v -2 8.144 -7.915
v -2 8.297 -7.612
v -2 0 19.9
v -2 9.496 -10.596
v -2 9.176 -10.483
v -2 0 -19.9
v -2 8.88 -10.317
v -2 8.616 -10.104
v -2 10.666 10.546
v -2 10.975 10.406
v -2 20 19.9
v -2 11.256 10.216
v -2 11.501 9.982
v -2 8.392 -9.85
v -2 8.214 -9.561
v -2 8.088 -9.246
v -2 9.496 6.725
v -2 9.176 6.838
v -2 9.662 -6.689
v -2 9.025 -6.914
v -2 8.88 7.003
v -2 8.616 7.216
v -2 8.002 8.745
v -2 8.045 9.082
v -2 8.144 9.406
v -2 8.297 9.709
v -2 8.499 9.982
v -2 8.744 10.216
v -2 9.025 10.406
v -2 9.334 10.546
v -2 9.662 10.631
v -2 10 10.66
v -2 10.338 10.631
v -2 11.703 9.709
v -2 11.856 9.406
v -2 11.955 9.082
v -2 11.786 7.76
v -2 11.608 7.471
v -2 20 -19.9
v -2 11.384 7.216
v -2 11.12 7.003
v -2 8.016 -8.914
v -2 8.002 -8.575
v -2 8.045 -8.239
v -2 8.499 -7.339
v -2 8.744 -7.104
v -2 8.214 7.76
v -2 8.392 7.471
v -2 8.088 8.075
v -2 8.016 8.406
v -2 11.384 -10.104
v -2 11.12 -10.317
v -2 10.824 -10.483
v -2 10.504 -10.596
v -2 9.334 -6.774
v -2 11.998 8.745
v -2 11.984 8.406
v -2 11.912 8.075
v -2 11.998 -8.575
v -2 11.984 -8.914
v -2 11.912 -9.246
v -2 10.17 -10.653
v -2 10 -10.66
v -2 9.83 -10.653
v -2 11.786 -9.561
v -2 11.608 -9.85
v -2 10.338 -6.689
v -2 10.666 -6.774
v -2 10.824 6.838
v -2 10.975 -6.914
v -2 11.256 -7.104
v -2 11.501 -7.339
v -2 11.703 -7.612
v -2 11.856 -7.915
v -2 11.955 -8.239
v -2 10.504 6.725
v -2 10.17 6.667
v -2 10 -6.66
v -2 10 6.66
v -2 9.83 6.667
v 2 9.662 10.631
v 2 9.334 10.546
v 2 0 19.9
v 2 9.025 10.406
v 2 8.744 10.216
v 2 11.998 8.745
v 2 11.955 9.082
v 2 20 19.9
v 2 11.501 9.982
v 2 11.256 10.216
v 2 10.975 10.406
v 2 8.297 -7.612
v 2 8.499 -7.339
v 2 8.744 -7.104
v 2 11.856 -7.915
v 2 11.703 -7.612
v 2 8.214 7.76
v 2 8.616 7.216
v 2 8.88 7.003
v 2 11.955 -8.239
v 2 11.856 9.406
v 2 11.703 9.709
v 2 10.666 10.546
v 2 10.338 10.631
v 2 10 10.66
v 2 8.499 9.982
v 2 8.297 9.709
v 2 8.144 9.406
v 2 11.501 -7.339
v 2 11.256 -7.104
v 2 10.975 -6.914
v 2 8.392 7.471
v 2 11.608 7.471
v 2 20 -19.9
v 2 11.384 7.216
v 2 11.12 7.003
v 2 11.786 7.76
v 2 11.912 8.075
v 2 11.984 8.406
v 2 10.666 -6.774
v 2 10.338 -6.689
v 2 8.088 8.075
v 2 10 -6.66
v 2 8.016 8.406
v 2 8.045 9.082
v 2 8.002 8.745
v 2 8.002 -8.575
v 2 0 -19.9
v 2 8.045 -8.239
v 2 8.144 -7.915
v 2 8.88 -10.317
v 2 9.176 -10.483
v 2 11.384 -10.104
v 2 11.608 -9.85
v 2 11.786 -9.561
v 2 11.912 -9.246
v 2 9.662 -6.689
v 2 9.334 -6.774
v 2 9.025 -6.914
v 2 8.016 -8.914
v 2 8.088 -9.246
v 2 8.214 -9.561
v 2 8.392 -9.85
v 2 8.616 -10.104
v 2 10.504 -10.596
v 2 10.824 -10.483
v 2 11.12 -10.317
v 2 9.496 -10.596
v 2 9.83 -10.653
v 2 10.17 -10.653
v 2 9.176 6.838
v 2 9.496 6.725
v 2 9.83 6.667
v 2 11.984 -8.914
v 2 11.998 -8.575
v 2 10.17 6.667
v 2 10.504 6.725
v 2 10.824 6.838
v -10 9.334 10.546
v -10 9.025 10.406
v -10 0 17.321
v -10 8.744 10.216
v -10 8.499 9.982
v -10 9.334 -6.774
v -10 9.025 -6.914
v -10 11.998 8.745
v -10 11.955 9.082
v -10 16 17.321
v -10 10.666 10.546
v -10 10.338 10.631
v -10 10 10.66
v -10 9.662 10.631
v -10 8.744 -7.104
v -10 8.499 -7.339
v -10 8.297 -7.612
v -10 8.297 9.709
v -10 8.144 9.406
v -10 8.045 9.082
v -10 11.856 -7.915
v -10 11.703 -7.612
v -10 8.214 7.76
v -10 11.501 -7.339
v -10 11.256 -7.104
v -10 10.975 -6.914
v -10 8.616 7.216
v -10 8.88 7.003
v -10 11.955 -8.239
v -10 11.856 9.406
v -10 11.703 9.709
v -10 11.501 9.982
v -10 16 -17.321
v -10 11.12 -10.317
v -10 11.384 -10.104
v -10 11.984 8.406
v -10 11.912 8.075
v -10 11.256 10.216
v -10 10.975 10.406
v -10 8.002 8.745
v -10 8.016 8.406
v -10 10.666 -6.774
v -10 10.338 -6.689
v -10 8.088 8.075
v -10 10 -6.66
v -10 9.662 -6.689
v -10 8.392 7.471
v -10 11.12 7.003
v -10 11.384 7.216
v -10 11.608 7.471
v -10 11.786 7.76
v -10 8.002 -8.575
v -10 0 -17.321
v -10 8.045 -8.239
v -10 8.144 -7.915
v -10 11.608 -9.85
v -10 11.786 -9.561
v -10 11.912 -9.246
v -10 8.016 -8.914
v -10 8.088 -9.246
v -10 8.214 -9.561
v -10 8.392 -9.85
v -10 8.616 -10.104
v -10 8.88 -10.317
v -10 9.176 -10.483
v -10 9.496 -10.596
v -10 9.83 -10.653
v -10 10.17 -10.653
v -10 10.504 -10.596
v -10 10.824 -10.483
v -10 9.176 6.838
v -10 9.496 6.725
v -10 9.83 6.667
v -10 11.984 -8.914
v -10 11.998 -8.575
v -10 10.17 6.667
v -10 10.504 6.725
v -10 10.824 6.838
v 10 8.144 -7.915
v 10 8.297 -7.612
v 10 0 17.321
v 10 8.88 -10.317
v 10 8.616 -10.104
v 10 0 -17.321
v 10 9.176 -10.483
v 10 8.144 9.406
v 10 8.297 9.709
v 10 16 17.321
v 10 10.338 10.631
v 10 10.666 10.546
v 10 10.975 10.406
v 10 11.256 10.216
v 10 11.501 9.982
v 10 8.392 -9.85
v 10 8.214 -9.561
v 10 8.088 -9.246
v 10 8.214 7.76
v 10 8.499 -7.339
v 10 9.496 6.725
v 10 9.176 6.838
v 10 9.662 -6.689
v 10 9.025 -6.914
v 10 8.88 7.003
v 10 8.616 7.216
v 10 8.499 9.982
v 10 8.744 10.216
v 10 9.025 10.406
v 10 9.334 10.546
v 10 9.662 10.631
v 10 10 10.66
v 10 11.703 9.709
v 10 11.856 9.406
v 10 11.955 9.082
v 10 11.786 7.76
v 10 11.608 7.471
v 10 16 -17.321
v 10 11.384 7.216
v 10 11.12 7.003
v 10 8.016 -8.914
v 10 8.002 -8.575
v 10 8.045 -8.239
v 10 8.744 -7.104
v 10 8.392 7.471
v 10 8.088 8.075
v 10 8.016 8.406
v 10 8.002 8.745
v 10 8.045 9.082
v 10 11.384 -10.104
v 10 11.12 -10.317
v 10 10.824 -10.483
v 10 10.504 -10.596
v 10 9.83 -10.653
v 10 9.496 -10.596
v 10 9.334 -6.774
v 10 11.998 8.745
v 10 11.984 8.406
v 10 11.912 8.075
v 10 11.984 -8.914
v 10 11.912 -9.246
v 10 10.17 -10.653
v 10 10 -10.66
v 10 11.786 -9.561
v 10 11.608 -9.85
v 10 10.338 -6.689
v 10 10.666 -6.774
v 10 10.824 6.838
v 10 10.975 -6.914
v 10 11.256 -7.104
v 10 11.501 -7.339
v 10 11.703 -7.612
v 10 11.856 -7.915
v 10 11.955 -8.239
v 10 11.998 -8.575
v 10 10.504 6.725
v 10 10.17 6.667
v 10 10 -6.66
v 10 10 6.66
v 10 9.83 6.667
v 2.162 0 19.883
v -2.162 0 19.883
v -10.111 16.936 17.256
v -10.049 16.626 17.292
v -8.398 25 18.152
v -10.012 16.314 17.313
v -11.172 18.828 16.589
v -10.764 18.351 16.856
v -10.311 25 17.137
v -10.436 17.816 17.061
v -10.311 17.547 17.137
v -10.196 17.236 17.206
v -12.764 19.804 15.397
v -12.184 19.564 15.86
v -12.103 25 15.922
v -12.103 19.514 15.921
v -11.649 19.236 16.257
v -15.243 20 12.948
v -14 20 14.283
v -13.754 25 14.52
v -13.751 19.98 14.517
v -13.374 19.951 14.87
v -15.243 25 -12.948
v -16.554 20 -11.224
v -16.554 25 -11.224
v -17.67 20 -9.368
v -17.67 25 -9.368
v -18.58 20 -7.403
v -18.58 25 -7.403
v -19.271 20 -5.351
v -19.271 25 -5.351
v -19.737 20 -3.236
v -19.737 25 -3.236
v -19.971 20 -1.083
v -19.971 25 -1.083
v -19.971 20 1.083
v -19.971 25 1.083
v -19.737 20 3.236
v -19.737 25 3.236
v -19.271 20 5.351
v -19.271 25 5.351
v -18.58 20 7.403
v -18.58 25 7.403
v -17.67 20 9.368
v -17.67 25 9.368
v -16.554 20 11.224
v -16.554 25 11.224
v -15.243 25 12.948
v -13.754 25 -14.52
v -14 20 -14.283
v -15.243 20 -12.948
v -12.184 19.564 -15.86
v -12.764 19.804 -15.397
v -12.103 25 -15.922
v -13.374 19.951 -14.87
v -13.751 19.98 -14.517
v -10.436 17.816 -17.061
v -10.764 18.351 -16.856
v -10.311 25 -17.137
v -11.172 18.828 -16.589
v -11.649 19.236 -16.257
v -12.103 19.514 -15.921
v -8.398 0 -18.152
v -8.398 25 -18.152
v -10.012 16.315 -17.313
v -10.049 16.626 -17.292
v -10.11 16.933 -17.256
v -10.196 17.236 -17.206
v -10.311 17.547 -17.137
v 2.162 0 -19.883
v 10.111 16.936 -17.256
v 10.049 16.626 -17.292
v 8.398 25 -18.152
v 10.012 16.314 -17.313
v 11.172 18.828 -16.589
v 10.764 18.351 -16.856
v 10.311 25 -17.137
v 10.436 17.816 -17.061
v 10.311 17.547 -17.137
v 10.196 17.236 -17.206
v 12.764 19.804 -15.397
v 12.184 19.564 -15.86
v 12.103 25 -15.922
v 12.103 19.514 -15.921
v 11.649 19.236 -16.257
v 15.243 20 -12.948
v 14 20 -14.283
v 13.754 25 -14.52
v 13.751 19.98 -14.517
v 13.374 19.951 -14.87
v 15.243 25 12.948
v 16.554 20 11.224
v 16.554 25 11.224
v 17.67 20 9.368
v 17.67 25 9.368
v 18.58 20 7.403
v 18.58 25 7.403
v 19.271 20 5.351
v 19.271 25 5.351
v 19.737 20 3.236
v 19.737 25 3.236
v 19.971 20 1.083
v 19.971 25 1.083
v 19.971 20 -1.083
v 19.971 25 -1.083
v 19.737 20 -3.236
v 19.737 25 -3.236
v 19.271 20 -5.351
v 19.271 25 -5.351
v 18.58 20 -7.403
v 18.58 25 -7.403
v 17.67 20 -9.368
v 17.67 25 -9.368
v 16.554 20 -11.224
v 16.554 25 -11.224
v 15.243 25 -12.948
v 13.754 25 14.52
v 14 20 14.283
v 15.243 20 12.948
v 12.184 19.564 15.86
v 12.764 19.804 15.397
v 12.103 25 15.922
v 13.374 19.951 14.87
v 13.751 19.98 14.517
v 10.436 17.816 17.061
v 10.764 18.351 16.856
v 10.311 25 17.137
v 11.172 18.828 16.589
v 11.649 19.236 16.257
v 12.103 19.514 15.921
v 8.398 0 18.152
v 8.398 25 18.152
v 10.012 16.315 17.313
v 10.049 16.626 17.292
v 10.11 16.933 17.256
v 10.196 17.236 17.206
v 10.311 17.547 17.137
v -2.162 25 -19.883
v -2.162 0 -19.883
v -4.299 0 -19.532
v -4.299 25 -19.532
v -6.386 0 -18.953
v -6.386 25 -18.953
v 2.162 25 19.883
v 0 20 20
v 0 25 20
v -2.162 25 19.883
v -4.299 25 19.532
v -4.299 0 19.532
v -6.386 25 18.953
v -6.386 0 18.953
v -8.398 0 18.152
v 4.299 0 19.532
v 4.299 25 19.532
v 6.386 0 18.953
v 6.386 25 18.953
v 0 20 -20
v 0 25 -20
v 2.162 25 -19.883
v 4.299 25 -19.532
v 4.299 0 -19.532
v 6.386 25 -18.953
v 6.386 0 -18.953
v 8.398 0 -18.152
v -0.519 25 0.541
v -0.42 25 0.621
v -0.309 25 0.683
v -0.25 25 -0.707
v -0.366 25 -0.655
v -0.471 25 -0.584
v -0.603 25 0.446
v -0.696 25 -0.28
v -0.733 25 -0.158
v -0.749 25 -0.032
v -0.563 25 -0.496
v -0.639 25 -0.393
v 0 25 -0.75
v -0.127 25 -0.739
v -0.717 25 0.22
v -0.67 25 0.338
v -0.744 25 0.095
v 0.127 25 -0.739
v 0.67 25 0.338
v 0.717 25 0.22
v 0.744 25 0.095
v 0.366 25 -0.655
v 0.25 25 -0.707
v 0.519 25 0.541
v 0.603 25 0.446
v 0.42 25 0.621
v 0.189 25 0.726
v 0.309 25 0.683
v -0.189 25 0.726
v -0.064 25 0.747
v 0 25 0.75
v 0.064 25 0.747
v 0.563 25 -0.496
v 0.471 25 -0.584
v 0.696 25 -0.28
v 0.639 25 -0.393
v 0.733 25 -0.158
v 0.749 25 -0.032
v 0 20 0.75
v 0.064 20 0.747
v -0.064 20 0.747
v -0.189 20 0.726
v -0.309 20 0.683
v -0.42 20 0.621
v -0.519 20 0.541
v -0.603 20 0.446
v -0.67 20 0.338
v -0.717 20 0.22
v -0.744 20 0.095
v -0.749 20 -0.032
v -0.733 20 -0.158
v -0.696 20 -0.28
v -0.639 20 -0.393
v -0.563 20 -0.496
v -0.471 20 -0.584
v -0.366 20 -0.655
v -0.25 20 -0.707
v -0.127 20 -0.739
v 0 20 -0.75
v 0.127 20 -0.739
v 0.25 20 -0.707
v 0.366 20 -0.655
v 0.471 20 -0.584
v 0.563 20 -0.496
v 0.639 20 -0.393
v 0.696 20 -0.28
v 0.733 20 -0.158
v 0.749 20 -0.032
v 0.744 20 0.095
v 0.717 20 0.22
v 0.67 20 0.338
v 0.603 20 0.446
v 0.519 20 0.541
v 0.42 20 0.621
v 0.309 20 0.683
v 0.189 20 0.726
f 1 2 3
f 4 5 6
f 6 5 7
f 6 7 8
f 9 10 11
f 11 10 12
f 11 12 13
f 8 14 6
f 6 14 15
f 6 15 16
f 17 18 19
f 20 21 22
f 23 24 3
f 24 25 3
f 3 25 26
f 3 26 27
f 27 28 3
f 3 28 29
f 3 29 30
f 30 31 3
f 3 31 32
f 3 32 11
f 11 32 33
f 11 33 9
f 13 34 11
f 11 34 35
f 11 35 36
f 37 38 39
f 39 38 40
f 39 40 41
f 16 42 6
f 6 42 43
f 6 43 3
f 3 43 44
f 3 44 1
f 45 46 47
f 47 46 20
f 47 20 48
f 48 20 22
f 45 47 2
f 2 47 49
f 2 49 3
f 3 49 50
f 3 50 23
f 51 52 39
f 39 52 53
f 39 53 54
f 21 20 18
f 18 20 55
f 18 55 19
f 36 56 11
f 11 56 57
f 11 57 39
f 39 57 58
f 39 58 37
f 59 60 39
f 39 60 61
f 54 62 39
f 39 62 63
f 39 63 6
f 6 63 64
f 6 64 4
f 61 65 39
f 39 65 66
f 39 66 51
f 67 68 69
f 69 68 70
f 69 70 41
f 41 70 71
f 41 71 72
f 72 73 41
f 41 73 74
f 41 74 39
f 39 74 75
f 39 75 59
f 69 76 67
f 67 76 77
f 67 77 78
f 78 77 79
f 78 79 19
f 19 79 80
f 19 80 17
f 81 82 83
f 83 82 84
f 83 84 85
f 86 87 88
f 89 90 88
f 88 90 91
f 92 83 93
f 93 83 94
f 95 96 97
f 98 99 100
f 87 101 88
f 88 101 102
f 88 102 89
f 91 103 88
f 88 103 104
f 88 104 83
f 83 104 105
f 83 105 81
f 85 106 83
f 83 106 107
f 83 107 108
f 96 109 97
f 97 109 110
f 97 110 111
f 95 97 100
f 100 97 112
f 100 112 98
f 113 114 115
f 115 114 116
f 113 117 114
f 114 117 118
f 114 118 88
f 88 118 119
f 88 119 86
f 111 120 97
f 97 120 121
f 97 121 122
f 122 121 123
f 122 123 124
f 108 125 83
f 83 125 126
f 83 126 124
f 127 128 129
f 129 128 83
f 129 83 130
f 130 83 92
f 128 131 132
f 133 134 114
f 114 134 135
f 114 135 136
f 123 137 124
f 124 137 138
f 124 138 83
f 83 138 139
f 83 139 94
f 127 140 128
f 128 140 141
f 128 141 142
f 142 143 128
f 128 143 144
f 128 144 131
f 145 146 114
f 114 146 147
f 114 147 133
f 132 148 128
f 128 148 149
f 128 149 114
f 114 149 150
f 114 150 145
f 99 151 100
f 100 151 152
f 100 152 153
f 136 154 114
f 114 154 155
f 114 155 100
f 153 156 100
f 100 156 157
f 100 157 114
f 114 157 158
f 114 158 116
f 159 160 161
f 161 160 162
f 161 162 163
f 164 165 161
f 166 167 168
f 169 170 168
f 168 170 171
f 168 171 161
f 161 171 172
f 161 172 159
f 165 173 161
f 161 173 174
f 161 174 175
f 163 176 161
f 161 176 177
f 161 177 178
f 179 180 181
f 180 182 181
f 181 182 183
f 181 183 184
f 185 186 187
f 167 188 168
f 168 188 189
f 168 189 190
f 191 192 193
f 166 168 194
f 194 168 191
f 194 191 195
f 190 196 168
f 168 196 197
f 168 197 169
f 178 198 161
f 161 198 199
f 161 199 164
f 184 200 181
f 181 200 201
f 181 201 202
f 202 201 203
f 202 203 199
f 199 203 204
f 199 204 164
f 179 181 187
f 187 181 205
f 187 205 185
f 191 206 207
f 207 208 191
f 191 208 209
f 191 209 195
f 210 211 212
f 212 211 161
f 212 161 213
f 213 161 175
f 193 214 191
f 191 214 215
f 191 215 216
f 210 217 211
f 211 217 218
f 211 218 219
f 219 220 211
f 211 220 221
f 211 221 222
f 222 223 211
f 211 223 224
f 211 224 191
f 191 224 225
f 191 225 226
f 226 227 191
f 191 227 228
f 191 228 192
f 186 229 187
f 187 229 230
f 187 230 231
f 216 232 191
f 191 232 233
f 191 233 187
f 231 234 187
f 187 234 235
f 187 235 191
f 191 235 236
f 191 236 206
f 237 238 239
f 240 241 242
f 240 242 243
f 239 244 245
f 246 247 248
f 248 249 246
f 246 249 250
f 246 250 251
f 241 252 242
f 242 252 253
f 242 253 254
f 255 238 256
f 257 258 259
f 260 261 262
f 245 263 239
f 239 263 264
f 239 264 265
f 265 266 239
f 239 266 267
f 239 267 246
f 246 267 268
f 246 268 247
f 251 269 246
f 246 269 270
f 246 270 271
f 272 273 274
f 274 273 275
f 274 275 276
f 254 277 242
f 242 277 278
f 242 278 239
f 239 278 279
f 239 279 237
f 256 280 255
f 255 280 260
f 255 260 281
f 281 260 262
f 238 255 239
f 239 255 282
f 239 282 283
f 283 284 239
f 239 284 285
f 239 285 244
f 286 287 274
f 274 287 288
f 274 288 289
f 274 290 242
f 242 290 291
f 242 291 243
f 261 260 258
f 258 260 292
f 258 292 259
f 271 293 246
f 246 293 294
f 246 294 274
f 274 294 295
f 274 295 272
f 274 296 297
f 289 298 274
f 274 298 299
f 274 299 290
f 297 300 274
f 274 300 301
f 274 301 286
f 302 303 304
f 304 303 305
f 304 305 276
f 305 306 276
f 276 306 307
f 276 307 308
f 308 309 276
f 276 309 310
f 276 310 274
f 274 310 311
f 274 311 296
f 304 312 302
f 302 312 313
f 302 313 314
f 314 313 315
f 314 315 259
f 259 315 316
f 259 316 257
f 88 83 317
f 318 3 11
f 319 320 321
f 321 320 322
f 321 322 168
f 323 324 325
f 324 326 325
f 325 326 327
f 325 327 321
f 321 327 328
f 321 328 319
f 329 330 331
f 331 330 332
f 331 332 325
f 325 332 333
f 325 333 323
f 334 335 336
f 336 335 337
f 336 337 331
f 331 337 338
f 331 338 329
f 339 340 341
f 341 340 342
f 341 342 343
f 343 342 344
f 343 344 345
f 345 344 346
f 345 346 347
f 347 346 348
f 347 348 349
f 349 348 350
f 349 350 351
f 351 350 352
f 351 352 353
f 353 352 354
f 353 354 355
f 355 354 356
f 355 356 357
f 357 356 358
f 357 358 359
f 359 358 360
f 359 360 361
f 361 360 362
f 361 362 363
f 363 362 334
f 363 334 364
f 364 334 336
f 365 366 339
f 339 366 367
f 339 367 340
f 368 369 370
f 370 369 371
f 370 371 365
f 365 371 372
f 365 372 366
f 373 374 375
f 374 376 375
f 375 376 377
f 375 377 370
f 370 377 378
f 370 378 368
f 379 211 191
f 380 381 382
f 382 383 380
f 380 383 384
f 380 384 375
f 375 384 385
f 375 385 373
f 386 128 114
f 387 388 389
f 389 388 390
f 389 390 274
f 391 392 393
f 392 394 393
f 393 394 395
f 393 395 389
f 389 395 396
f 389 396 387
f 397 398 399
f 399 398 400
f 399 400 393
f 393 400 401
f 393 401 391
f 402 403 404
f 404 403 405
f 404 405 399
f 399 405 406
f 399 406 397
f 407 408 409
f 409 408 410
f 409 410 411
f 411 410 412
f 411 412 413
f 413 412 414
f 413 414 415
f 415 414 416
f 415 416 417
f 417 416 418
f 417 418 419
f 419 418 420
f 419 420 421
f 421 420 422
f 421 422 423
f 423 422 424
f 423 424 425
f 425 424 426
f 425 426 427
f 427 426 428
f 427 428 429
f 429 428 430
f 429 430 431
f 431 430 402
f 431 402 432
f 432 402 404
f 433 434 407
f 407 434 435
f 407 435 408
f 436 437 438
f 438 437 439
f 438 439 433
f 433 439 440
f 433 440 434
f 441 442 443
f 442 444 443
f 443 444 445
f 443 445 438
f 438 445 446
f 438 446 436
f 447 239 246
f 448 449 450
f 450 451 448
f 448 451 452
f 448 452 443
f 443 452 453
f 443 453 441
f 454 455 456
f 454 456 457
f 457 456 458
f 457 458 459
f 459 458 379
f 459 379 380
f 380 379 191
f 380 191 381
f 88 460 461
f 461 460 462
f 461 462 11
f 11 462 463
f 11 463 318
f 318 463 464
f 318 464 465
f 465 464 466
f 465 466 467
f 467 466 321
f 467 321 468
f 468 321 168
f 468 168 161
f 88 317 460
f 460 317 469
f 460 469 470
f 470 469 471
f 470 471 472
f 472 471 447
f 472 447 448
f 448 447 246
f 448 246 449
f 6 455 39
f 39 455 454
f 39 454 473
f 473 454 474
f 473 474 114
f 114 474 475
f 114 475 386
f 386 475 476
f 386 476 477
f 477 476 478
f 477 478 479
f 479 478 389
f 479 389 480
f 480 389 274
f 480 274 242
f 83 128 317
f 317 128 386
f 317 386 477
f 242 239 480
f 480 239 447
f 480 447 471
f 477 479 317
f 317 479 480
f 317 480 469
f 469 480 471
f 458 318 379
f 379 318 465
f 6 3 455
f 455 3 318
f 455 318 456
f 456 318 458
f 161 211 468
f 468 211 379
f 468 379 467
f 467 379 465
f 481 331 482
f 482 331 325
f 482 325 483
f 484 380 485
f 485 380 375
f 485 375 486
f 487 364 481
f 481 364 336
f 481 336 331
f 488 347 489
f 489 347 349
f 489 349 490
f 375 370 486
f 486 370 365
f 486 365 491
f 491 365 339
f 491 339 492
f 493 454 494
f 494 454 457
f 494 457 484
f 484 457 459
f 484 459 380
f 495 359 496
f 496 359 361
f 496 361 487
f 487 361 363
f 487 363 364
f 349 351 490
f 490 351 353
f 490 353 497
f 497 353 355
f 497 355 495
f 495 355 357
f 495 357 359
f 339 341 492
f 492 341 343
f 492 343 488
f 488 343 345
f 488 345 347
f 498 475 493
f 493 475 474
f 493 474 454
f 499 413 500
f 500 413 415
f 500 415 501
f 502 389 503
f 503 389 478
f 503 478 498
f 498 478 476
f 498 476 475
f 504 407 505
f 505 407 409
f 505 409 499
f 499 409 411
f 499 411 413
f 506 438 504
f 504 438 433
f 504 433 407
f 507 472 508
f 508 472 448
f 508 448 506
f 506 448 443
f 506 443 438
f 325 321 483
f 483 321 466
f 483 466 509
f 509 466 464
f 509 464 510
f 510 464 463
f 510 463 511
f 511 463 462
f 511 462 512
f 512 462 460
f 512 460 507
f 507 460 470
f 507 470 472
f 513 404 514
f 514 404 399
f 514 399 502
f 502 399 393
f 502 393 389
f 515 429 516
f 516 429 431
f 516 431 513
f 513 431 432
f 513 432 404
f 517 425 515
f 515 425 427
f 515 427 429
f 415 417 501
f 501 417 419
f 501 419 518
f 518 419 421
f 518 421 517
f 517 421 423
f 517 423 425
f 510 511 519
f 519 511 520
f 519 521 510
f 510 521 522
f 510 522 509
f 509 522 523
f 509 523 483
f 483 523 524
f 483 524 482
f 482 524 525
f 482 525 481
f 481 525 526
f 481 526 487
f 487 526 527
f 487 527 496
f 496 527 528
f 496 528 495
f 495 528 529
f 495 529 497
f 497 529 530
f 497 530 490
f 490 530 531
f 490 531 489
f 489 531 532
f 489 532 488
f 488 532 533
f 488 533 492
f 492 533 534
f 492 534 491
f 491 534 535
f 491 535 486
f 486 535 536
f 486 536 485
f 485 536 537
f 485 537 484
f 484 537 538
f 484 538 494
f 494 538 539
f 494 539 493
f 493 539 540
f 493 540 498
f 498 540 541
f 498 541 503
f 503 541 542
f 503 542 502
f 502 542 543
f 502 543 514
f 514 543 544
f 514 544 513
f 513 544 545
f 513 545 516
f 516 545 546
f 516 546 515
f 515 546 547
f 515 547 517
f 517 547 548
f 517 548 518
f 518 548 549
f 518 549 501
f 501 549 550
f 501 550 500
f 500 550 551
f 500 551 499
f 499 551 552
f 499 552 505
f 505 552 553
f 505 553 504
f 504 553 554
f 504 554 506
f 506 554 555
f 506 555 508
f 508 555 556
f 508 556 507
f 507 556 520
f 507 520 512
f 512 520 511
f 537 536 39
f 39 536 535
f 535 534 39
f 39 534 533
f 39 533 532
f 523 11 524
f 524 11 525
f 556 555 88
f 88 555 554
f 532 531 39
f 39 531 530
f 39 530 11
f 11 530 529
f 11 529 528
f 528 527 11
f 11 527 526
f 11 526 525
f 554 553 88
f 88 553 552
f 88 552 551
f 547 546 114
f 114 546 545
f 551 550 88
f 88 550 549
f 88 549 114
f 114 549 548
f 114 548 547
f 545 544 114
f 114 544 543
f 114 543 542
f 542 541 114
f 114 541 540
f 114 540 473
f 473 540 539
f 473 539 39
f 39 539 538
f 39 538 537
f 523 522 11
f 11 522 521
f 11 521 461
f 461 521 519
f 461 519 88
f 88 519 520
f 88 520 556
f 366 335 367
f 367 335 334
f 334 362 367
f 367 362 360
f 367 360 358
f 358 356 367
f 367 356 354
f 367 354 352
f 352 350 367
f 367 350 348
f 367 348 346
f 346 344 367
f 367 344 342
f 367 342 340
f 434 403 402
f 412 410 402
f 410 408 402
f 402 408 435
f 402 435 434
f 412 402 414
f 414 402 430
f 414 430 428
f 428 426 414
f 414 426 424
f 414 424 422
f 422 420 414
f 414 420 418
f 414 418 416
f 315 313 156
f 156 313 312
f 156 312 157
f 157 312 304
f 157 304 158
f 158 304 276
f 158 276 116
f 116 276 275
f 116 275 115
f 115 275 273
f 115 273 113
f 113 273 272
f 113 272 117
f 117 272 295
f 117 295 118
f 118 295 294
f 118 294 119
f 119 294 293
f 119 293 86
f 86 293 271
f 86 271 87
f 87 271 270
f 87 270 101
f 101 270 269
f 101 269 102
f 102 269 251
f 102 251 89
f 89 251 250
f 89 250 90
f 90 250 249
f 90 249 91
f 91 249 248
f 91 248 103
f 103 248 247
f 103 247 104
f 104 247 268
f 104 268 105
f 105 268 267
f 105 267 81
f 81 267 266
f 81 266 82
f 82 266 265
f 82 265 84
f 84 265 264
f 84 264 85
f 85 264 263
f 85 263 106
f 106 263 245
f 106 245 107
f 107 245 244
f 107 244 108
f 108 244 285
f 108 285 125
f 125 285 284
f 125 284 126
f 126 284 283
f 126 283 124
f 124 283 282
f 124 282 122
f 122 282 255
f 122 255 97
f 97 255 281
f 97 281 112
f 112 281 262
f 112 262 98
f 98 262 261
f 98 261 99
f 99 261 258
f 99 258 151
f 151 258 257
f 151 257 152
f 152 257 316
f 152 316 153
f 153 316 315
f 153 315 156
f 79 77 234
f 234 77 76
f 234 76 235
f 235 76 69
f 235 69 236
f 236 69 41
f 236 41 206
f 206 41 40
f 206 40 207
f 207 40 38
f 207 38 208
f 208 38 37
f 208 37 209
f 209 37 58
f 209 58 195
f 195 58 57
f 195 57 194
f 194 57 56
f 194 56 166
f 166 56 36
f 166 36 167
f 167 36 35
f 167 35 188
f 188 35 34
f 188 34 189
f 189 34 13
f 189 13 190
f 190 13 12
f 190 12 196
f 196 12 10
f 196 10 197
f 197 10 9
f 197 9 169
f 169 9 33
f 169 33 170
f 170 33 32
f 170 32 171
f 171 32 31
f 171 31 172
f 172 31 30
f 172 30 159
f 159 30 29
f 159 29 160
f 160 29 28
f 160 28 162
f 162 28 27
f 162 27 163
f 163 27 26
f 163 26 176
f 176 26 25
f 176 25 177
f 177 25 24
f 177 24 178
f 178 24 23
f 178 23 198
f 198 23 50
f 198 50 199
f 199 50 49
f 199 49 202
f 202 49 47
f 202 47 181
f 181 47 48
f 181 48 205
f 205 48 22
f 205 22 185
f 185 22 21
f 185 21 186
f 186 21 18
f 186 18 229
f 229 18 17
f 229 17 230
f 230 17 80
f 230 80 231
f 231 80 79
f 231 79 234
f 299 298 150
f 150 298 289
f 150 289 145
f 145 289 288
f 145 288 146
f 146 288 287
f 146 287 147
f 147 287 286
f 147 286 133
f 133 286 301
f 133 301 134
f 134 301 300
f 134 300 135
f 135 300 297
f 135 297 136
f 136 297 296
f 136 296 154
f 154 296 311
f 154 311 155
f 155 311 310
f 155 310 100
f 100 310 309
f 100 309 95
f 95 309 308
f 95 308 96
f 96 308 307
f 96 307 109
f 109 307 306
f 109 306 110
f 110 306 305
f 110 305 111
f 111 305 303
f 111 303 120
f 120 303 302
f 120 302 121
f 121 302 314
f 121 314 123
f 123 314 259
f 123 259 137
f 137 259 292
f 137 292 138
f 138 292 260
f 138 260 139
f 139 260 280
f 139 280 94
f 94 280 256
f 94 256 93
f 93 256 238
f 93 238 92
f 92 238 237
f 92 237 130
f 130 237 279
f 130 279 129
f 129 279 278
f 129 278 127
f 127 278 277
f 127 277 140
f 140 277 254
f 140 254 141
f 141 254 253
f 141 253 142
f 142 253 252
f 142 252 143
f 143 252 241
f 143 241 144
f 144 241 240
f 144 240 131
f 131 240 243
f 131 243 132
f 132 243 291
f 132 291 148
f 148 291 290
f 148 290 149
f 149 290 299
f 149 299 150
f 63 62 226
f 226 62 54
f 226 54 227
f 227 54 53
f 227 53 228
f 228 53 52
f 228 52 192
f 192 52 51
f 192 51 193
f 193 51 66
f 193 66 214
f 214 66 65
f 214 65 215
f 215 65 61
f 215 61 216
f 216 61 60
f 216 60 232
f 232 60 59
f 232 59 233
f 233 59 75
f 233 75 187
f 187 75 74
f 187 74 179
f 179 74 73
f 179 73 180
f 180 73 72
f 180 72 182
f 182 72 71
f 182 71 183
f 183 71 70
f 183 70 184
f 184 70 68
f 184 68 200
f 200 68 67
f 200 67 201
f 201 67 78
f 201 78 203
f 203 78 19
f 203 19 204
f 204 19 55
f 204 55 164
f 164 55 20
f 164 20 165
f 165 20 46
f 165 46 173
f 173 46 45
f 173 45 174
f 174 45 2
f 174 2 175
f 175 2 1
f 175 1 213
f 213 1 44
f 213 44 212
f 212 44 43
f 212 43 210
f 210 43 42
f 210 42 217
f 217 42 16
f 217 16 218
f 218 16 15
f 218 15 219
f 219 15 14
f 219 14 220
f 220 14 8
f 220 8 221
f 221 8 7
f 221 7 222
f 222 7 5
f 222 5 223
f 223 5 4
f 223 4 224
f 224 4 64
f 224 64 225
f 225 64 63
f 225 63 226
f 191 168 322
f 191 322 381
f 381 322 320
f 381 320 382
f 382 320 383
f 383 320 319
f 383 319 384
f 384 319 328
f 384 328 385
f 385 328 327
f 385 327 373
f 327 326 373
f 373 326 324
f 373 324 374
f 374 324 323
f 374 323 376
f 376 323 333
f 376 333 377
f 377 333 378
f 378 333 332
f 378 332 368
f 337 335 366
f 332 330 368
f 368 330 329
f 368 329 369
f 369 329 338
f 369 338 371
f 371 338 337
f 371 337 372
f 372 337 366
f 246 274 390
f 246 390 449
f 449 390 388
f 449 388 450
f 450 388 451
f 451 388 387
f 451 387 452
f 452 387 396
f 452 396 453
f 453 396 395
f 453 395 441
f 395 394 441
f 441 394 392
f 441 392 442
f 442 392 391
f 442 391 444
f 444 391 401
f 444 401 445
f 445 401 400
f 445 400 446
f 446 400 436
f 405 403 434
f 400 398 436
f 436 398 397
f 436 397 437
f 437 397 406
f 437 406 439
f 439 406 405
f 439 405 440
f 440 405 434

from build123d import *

# Parameters (mm, degrees)
ESBO_O1_R                  = 20
ESBO_O1_R_2                = 0.75
RESSALTO_EXTRUS_O1_DEPTH   = 25
ESBO_O2_W                  = 4
ESBO_O2_H                  = 42.07133093
ESBO_O2_W_2                = 15.138637908
ESBO_O2_H_2                = 40
ESBO_O2_W_3                = 12.263470243
CORTE_EXTRUS_O1_DEPTH      = 20
ESBO_O3_R                  = 2
CORTE_EXTRUS_O2_DEPTH      = 20
CORTE_EXTRUS_O2_DEPTH_BACK = 20
FILETE1_R                  = 4


with BuildPart() as part:
    # Esboço1 → Ressalto-extrusão1 (new body)
    with BuildSketch(Plane(origin=(0, 0, 0), x_dir=(1, 0, 0), z_dir=(0, 1, 0))):
        Circle(ESBO_O1_R)
        Circle(ESBO_O1_R_2, mode=Mode.SUBTRACT)
    extrude(amount=RESSALTO_EXTRUS_O1_DEPTH)

    # Esboço2 → Corte-extrusão1 (cut)
    with BuildSketch(Plane(origin=(0, 0, 0), x_dir=(1, 0, 0), z_dir=(0, 1, 0))):
        with Locations((0, -0.26404601)):
            Rectangle(ESBO_O2_W, ESBO_O2_H)
        with Locations((-17.569318954, 0)):
            Rectangle(ESBO_O2_W_2, ESBO_O2_H_2)
        with Locations((16.131735122, -0.26404601)):
            Rectangle(ESBO_O2_W_3, ESBO_O2_H)
    extrude(amount=CORTE_EXTRUS_O1_DEPTH, mode=Mode.SUBTRACT)

    # Esboço3 → Corte-extrusão2 (cut, two sides)
    with BuildSketch(Plane(origin=(0, 0, 0), x_dir=(0, 0, -1), z_dir=(1, 0, 0))) as corte_extrus_o2_sk:
        with Locations((-8.660254038, 10)):
            Circle(ESBO_O3_R)
        with Locations((8.660254038, 10)):
            Circle(ESBO_O3_R)
    extrude(amount=CORTE_EXTRUS_O2_DEPTH, mode=Mode.SUBTRACT)
    extrude(corte_extrus_o2_sk.sketch, amount=-CORTE_EXTRUS_O2_DEPTH_BACK, mode=Mode.SUBTRACT)

    # Filete1
    filete1_edges = [part.edges().sort_by_distance(p)[0] for p in [
        (-10, 20, 0),
        (10, 20, 0),
    ]]
    fillet(filete1_edges, radius=FILETE1_R)


solid = part.part
